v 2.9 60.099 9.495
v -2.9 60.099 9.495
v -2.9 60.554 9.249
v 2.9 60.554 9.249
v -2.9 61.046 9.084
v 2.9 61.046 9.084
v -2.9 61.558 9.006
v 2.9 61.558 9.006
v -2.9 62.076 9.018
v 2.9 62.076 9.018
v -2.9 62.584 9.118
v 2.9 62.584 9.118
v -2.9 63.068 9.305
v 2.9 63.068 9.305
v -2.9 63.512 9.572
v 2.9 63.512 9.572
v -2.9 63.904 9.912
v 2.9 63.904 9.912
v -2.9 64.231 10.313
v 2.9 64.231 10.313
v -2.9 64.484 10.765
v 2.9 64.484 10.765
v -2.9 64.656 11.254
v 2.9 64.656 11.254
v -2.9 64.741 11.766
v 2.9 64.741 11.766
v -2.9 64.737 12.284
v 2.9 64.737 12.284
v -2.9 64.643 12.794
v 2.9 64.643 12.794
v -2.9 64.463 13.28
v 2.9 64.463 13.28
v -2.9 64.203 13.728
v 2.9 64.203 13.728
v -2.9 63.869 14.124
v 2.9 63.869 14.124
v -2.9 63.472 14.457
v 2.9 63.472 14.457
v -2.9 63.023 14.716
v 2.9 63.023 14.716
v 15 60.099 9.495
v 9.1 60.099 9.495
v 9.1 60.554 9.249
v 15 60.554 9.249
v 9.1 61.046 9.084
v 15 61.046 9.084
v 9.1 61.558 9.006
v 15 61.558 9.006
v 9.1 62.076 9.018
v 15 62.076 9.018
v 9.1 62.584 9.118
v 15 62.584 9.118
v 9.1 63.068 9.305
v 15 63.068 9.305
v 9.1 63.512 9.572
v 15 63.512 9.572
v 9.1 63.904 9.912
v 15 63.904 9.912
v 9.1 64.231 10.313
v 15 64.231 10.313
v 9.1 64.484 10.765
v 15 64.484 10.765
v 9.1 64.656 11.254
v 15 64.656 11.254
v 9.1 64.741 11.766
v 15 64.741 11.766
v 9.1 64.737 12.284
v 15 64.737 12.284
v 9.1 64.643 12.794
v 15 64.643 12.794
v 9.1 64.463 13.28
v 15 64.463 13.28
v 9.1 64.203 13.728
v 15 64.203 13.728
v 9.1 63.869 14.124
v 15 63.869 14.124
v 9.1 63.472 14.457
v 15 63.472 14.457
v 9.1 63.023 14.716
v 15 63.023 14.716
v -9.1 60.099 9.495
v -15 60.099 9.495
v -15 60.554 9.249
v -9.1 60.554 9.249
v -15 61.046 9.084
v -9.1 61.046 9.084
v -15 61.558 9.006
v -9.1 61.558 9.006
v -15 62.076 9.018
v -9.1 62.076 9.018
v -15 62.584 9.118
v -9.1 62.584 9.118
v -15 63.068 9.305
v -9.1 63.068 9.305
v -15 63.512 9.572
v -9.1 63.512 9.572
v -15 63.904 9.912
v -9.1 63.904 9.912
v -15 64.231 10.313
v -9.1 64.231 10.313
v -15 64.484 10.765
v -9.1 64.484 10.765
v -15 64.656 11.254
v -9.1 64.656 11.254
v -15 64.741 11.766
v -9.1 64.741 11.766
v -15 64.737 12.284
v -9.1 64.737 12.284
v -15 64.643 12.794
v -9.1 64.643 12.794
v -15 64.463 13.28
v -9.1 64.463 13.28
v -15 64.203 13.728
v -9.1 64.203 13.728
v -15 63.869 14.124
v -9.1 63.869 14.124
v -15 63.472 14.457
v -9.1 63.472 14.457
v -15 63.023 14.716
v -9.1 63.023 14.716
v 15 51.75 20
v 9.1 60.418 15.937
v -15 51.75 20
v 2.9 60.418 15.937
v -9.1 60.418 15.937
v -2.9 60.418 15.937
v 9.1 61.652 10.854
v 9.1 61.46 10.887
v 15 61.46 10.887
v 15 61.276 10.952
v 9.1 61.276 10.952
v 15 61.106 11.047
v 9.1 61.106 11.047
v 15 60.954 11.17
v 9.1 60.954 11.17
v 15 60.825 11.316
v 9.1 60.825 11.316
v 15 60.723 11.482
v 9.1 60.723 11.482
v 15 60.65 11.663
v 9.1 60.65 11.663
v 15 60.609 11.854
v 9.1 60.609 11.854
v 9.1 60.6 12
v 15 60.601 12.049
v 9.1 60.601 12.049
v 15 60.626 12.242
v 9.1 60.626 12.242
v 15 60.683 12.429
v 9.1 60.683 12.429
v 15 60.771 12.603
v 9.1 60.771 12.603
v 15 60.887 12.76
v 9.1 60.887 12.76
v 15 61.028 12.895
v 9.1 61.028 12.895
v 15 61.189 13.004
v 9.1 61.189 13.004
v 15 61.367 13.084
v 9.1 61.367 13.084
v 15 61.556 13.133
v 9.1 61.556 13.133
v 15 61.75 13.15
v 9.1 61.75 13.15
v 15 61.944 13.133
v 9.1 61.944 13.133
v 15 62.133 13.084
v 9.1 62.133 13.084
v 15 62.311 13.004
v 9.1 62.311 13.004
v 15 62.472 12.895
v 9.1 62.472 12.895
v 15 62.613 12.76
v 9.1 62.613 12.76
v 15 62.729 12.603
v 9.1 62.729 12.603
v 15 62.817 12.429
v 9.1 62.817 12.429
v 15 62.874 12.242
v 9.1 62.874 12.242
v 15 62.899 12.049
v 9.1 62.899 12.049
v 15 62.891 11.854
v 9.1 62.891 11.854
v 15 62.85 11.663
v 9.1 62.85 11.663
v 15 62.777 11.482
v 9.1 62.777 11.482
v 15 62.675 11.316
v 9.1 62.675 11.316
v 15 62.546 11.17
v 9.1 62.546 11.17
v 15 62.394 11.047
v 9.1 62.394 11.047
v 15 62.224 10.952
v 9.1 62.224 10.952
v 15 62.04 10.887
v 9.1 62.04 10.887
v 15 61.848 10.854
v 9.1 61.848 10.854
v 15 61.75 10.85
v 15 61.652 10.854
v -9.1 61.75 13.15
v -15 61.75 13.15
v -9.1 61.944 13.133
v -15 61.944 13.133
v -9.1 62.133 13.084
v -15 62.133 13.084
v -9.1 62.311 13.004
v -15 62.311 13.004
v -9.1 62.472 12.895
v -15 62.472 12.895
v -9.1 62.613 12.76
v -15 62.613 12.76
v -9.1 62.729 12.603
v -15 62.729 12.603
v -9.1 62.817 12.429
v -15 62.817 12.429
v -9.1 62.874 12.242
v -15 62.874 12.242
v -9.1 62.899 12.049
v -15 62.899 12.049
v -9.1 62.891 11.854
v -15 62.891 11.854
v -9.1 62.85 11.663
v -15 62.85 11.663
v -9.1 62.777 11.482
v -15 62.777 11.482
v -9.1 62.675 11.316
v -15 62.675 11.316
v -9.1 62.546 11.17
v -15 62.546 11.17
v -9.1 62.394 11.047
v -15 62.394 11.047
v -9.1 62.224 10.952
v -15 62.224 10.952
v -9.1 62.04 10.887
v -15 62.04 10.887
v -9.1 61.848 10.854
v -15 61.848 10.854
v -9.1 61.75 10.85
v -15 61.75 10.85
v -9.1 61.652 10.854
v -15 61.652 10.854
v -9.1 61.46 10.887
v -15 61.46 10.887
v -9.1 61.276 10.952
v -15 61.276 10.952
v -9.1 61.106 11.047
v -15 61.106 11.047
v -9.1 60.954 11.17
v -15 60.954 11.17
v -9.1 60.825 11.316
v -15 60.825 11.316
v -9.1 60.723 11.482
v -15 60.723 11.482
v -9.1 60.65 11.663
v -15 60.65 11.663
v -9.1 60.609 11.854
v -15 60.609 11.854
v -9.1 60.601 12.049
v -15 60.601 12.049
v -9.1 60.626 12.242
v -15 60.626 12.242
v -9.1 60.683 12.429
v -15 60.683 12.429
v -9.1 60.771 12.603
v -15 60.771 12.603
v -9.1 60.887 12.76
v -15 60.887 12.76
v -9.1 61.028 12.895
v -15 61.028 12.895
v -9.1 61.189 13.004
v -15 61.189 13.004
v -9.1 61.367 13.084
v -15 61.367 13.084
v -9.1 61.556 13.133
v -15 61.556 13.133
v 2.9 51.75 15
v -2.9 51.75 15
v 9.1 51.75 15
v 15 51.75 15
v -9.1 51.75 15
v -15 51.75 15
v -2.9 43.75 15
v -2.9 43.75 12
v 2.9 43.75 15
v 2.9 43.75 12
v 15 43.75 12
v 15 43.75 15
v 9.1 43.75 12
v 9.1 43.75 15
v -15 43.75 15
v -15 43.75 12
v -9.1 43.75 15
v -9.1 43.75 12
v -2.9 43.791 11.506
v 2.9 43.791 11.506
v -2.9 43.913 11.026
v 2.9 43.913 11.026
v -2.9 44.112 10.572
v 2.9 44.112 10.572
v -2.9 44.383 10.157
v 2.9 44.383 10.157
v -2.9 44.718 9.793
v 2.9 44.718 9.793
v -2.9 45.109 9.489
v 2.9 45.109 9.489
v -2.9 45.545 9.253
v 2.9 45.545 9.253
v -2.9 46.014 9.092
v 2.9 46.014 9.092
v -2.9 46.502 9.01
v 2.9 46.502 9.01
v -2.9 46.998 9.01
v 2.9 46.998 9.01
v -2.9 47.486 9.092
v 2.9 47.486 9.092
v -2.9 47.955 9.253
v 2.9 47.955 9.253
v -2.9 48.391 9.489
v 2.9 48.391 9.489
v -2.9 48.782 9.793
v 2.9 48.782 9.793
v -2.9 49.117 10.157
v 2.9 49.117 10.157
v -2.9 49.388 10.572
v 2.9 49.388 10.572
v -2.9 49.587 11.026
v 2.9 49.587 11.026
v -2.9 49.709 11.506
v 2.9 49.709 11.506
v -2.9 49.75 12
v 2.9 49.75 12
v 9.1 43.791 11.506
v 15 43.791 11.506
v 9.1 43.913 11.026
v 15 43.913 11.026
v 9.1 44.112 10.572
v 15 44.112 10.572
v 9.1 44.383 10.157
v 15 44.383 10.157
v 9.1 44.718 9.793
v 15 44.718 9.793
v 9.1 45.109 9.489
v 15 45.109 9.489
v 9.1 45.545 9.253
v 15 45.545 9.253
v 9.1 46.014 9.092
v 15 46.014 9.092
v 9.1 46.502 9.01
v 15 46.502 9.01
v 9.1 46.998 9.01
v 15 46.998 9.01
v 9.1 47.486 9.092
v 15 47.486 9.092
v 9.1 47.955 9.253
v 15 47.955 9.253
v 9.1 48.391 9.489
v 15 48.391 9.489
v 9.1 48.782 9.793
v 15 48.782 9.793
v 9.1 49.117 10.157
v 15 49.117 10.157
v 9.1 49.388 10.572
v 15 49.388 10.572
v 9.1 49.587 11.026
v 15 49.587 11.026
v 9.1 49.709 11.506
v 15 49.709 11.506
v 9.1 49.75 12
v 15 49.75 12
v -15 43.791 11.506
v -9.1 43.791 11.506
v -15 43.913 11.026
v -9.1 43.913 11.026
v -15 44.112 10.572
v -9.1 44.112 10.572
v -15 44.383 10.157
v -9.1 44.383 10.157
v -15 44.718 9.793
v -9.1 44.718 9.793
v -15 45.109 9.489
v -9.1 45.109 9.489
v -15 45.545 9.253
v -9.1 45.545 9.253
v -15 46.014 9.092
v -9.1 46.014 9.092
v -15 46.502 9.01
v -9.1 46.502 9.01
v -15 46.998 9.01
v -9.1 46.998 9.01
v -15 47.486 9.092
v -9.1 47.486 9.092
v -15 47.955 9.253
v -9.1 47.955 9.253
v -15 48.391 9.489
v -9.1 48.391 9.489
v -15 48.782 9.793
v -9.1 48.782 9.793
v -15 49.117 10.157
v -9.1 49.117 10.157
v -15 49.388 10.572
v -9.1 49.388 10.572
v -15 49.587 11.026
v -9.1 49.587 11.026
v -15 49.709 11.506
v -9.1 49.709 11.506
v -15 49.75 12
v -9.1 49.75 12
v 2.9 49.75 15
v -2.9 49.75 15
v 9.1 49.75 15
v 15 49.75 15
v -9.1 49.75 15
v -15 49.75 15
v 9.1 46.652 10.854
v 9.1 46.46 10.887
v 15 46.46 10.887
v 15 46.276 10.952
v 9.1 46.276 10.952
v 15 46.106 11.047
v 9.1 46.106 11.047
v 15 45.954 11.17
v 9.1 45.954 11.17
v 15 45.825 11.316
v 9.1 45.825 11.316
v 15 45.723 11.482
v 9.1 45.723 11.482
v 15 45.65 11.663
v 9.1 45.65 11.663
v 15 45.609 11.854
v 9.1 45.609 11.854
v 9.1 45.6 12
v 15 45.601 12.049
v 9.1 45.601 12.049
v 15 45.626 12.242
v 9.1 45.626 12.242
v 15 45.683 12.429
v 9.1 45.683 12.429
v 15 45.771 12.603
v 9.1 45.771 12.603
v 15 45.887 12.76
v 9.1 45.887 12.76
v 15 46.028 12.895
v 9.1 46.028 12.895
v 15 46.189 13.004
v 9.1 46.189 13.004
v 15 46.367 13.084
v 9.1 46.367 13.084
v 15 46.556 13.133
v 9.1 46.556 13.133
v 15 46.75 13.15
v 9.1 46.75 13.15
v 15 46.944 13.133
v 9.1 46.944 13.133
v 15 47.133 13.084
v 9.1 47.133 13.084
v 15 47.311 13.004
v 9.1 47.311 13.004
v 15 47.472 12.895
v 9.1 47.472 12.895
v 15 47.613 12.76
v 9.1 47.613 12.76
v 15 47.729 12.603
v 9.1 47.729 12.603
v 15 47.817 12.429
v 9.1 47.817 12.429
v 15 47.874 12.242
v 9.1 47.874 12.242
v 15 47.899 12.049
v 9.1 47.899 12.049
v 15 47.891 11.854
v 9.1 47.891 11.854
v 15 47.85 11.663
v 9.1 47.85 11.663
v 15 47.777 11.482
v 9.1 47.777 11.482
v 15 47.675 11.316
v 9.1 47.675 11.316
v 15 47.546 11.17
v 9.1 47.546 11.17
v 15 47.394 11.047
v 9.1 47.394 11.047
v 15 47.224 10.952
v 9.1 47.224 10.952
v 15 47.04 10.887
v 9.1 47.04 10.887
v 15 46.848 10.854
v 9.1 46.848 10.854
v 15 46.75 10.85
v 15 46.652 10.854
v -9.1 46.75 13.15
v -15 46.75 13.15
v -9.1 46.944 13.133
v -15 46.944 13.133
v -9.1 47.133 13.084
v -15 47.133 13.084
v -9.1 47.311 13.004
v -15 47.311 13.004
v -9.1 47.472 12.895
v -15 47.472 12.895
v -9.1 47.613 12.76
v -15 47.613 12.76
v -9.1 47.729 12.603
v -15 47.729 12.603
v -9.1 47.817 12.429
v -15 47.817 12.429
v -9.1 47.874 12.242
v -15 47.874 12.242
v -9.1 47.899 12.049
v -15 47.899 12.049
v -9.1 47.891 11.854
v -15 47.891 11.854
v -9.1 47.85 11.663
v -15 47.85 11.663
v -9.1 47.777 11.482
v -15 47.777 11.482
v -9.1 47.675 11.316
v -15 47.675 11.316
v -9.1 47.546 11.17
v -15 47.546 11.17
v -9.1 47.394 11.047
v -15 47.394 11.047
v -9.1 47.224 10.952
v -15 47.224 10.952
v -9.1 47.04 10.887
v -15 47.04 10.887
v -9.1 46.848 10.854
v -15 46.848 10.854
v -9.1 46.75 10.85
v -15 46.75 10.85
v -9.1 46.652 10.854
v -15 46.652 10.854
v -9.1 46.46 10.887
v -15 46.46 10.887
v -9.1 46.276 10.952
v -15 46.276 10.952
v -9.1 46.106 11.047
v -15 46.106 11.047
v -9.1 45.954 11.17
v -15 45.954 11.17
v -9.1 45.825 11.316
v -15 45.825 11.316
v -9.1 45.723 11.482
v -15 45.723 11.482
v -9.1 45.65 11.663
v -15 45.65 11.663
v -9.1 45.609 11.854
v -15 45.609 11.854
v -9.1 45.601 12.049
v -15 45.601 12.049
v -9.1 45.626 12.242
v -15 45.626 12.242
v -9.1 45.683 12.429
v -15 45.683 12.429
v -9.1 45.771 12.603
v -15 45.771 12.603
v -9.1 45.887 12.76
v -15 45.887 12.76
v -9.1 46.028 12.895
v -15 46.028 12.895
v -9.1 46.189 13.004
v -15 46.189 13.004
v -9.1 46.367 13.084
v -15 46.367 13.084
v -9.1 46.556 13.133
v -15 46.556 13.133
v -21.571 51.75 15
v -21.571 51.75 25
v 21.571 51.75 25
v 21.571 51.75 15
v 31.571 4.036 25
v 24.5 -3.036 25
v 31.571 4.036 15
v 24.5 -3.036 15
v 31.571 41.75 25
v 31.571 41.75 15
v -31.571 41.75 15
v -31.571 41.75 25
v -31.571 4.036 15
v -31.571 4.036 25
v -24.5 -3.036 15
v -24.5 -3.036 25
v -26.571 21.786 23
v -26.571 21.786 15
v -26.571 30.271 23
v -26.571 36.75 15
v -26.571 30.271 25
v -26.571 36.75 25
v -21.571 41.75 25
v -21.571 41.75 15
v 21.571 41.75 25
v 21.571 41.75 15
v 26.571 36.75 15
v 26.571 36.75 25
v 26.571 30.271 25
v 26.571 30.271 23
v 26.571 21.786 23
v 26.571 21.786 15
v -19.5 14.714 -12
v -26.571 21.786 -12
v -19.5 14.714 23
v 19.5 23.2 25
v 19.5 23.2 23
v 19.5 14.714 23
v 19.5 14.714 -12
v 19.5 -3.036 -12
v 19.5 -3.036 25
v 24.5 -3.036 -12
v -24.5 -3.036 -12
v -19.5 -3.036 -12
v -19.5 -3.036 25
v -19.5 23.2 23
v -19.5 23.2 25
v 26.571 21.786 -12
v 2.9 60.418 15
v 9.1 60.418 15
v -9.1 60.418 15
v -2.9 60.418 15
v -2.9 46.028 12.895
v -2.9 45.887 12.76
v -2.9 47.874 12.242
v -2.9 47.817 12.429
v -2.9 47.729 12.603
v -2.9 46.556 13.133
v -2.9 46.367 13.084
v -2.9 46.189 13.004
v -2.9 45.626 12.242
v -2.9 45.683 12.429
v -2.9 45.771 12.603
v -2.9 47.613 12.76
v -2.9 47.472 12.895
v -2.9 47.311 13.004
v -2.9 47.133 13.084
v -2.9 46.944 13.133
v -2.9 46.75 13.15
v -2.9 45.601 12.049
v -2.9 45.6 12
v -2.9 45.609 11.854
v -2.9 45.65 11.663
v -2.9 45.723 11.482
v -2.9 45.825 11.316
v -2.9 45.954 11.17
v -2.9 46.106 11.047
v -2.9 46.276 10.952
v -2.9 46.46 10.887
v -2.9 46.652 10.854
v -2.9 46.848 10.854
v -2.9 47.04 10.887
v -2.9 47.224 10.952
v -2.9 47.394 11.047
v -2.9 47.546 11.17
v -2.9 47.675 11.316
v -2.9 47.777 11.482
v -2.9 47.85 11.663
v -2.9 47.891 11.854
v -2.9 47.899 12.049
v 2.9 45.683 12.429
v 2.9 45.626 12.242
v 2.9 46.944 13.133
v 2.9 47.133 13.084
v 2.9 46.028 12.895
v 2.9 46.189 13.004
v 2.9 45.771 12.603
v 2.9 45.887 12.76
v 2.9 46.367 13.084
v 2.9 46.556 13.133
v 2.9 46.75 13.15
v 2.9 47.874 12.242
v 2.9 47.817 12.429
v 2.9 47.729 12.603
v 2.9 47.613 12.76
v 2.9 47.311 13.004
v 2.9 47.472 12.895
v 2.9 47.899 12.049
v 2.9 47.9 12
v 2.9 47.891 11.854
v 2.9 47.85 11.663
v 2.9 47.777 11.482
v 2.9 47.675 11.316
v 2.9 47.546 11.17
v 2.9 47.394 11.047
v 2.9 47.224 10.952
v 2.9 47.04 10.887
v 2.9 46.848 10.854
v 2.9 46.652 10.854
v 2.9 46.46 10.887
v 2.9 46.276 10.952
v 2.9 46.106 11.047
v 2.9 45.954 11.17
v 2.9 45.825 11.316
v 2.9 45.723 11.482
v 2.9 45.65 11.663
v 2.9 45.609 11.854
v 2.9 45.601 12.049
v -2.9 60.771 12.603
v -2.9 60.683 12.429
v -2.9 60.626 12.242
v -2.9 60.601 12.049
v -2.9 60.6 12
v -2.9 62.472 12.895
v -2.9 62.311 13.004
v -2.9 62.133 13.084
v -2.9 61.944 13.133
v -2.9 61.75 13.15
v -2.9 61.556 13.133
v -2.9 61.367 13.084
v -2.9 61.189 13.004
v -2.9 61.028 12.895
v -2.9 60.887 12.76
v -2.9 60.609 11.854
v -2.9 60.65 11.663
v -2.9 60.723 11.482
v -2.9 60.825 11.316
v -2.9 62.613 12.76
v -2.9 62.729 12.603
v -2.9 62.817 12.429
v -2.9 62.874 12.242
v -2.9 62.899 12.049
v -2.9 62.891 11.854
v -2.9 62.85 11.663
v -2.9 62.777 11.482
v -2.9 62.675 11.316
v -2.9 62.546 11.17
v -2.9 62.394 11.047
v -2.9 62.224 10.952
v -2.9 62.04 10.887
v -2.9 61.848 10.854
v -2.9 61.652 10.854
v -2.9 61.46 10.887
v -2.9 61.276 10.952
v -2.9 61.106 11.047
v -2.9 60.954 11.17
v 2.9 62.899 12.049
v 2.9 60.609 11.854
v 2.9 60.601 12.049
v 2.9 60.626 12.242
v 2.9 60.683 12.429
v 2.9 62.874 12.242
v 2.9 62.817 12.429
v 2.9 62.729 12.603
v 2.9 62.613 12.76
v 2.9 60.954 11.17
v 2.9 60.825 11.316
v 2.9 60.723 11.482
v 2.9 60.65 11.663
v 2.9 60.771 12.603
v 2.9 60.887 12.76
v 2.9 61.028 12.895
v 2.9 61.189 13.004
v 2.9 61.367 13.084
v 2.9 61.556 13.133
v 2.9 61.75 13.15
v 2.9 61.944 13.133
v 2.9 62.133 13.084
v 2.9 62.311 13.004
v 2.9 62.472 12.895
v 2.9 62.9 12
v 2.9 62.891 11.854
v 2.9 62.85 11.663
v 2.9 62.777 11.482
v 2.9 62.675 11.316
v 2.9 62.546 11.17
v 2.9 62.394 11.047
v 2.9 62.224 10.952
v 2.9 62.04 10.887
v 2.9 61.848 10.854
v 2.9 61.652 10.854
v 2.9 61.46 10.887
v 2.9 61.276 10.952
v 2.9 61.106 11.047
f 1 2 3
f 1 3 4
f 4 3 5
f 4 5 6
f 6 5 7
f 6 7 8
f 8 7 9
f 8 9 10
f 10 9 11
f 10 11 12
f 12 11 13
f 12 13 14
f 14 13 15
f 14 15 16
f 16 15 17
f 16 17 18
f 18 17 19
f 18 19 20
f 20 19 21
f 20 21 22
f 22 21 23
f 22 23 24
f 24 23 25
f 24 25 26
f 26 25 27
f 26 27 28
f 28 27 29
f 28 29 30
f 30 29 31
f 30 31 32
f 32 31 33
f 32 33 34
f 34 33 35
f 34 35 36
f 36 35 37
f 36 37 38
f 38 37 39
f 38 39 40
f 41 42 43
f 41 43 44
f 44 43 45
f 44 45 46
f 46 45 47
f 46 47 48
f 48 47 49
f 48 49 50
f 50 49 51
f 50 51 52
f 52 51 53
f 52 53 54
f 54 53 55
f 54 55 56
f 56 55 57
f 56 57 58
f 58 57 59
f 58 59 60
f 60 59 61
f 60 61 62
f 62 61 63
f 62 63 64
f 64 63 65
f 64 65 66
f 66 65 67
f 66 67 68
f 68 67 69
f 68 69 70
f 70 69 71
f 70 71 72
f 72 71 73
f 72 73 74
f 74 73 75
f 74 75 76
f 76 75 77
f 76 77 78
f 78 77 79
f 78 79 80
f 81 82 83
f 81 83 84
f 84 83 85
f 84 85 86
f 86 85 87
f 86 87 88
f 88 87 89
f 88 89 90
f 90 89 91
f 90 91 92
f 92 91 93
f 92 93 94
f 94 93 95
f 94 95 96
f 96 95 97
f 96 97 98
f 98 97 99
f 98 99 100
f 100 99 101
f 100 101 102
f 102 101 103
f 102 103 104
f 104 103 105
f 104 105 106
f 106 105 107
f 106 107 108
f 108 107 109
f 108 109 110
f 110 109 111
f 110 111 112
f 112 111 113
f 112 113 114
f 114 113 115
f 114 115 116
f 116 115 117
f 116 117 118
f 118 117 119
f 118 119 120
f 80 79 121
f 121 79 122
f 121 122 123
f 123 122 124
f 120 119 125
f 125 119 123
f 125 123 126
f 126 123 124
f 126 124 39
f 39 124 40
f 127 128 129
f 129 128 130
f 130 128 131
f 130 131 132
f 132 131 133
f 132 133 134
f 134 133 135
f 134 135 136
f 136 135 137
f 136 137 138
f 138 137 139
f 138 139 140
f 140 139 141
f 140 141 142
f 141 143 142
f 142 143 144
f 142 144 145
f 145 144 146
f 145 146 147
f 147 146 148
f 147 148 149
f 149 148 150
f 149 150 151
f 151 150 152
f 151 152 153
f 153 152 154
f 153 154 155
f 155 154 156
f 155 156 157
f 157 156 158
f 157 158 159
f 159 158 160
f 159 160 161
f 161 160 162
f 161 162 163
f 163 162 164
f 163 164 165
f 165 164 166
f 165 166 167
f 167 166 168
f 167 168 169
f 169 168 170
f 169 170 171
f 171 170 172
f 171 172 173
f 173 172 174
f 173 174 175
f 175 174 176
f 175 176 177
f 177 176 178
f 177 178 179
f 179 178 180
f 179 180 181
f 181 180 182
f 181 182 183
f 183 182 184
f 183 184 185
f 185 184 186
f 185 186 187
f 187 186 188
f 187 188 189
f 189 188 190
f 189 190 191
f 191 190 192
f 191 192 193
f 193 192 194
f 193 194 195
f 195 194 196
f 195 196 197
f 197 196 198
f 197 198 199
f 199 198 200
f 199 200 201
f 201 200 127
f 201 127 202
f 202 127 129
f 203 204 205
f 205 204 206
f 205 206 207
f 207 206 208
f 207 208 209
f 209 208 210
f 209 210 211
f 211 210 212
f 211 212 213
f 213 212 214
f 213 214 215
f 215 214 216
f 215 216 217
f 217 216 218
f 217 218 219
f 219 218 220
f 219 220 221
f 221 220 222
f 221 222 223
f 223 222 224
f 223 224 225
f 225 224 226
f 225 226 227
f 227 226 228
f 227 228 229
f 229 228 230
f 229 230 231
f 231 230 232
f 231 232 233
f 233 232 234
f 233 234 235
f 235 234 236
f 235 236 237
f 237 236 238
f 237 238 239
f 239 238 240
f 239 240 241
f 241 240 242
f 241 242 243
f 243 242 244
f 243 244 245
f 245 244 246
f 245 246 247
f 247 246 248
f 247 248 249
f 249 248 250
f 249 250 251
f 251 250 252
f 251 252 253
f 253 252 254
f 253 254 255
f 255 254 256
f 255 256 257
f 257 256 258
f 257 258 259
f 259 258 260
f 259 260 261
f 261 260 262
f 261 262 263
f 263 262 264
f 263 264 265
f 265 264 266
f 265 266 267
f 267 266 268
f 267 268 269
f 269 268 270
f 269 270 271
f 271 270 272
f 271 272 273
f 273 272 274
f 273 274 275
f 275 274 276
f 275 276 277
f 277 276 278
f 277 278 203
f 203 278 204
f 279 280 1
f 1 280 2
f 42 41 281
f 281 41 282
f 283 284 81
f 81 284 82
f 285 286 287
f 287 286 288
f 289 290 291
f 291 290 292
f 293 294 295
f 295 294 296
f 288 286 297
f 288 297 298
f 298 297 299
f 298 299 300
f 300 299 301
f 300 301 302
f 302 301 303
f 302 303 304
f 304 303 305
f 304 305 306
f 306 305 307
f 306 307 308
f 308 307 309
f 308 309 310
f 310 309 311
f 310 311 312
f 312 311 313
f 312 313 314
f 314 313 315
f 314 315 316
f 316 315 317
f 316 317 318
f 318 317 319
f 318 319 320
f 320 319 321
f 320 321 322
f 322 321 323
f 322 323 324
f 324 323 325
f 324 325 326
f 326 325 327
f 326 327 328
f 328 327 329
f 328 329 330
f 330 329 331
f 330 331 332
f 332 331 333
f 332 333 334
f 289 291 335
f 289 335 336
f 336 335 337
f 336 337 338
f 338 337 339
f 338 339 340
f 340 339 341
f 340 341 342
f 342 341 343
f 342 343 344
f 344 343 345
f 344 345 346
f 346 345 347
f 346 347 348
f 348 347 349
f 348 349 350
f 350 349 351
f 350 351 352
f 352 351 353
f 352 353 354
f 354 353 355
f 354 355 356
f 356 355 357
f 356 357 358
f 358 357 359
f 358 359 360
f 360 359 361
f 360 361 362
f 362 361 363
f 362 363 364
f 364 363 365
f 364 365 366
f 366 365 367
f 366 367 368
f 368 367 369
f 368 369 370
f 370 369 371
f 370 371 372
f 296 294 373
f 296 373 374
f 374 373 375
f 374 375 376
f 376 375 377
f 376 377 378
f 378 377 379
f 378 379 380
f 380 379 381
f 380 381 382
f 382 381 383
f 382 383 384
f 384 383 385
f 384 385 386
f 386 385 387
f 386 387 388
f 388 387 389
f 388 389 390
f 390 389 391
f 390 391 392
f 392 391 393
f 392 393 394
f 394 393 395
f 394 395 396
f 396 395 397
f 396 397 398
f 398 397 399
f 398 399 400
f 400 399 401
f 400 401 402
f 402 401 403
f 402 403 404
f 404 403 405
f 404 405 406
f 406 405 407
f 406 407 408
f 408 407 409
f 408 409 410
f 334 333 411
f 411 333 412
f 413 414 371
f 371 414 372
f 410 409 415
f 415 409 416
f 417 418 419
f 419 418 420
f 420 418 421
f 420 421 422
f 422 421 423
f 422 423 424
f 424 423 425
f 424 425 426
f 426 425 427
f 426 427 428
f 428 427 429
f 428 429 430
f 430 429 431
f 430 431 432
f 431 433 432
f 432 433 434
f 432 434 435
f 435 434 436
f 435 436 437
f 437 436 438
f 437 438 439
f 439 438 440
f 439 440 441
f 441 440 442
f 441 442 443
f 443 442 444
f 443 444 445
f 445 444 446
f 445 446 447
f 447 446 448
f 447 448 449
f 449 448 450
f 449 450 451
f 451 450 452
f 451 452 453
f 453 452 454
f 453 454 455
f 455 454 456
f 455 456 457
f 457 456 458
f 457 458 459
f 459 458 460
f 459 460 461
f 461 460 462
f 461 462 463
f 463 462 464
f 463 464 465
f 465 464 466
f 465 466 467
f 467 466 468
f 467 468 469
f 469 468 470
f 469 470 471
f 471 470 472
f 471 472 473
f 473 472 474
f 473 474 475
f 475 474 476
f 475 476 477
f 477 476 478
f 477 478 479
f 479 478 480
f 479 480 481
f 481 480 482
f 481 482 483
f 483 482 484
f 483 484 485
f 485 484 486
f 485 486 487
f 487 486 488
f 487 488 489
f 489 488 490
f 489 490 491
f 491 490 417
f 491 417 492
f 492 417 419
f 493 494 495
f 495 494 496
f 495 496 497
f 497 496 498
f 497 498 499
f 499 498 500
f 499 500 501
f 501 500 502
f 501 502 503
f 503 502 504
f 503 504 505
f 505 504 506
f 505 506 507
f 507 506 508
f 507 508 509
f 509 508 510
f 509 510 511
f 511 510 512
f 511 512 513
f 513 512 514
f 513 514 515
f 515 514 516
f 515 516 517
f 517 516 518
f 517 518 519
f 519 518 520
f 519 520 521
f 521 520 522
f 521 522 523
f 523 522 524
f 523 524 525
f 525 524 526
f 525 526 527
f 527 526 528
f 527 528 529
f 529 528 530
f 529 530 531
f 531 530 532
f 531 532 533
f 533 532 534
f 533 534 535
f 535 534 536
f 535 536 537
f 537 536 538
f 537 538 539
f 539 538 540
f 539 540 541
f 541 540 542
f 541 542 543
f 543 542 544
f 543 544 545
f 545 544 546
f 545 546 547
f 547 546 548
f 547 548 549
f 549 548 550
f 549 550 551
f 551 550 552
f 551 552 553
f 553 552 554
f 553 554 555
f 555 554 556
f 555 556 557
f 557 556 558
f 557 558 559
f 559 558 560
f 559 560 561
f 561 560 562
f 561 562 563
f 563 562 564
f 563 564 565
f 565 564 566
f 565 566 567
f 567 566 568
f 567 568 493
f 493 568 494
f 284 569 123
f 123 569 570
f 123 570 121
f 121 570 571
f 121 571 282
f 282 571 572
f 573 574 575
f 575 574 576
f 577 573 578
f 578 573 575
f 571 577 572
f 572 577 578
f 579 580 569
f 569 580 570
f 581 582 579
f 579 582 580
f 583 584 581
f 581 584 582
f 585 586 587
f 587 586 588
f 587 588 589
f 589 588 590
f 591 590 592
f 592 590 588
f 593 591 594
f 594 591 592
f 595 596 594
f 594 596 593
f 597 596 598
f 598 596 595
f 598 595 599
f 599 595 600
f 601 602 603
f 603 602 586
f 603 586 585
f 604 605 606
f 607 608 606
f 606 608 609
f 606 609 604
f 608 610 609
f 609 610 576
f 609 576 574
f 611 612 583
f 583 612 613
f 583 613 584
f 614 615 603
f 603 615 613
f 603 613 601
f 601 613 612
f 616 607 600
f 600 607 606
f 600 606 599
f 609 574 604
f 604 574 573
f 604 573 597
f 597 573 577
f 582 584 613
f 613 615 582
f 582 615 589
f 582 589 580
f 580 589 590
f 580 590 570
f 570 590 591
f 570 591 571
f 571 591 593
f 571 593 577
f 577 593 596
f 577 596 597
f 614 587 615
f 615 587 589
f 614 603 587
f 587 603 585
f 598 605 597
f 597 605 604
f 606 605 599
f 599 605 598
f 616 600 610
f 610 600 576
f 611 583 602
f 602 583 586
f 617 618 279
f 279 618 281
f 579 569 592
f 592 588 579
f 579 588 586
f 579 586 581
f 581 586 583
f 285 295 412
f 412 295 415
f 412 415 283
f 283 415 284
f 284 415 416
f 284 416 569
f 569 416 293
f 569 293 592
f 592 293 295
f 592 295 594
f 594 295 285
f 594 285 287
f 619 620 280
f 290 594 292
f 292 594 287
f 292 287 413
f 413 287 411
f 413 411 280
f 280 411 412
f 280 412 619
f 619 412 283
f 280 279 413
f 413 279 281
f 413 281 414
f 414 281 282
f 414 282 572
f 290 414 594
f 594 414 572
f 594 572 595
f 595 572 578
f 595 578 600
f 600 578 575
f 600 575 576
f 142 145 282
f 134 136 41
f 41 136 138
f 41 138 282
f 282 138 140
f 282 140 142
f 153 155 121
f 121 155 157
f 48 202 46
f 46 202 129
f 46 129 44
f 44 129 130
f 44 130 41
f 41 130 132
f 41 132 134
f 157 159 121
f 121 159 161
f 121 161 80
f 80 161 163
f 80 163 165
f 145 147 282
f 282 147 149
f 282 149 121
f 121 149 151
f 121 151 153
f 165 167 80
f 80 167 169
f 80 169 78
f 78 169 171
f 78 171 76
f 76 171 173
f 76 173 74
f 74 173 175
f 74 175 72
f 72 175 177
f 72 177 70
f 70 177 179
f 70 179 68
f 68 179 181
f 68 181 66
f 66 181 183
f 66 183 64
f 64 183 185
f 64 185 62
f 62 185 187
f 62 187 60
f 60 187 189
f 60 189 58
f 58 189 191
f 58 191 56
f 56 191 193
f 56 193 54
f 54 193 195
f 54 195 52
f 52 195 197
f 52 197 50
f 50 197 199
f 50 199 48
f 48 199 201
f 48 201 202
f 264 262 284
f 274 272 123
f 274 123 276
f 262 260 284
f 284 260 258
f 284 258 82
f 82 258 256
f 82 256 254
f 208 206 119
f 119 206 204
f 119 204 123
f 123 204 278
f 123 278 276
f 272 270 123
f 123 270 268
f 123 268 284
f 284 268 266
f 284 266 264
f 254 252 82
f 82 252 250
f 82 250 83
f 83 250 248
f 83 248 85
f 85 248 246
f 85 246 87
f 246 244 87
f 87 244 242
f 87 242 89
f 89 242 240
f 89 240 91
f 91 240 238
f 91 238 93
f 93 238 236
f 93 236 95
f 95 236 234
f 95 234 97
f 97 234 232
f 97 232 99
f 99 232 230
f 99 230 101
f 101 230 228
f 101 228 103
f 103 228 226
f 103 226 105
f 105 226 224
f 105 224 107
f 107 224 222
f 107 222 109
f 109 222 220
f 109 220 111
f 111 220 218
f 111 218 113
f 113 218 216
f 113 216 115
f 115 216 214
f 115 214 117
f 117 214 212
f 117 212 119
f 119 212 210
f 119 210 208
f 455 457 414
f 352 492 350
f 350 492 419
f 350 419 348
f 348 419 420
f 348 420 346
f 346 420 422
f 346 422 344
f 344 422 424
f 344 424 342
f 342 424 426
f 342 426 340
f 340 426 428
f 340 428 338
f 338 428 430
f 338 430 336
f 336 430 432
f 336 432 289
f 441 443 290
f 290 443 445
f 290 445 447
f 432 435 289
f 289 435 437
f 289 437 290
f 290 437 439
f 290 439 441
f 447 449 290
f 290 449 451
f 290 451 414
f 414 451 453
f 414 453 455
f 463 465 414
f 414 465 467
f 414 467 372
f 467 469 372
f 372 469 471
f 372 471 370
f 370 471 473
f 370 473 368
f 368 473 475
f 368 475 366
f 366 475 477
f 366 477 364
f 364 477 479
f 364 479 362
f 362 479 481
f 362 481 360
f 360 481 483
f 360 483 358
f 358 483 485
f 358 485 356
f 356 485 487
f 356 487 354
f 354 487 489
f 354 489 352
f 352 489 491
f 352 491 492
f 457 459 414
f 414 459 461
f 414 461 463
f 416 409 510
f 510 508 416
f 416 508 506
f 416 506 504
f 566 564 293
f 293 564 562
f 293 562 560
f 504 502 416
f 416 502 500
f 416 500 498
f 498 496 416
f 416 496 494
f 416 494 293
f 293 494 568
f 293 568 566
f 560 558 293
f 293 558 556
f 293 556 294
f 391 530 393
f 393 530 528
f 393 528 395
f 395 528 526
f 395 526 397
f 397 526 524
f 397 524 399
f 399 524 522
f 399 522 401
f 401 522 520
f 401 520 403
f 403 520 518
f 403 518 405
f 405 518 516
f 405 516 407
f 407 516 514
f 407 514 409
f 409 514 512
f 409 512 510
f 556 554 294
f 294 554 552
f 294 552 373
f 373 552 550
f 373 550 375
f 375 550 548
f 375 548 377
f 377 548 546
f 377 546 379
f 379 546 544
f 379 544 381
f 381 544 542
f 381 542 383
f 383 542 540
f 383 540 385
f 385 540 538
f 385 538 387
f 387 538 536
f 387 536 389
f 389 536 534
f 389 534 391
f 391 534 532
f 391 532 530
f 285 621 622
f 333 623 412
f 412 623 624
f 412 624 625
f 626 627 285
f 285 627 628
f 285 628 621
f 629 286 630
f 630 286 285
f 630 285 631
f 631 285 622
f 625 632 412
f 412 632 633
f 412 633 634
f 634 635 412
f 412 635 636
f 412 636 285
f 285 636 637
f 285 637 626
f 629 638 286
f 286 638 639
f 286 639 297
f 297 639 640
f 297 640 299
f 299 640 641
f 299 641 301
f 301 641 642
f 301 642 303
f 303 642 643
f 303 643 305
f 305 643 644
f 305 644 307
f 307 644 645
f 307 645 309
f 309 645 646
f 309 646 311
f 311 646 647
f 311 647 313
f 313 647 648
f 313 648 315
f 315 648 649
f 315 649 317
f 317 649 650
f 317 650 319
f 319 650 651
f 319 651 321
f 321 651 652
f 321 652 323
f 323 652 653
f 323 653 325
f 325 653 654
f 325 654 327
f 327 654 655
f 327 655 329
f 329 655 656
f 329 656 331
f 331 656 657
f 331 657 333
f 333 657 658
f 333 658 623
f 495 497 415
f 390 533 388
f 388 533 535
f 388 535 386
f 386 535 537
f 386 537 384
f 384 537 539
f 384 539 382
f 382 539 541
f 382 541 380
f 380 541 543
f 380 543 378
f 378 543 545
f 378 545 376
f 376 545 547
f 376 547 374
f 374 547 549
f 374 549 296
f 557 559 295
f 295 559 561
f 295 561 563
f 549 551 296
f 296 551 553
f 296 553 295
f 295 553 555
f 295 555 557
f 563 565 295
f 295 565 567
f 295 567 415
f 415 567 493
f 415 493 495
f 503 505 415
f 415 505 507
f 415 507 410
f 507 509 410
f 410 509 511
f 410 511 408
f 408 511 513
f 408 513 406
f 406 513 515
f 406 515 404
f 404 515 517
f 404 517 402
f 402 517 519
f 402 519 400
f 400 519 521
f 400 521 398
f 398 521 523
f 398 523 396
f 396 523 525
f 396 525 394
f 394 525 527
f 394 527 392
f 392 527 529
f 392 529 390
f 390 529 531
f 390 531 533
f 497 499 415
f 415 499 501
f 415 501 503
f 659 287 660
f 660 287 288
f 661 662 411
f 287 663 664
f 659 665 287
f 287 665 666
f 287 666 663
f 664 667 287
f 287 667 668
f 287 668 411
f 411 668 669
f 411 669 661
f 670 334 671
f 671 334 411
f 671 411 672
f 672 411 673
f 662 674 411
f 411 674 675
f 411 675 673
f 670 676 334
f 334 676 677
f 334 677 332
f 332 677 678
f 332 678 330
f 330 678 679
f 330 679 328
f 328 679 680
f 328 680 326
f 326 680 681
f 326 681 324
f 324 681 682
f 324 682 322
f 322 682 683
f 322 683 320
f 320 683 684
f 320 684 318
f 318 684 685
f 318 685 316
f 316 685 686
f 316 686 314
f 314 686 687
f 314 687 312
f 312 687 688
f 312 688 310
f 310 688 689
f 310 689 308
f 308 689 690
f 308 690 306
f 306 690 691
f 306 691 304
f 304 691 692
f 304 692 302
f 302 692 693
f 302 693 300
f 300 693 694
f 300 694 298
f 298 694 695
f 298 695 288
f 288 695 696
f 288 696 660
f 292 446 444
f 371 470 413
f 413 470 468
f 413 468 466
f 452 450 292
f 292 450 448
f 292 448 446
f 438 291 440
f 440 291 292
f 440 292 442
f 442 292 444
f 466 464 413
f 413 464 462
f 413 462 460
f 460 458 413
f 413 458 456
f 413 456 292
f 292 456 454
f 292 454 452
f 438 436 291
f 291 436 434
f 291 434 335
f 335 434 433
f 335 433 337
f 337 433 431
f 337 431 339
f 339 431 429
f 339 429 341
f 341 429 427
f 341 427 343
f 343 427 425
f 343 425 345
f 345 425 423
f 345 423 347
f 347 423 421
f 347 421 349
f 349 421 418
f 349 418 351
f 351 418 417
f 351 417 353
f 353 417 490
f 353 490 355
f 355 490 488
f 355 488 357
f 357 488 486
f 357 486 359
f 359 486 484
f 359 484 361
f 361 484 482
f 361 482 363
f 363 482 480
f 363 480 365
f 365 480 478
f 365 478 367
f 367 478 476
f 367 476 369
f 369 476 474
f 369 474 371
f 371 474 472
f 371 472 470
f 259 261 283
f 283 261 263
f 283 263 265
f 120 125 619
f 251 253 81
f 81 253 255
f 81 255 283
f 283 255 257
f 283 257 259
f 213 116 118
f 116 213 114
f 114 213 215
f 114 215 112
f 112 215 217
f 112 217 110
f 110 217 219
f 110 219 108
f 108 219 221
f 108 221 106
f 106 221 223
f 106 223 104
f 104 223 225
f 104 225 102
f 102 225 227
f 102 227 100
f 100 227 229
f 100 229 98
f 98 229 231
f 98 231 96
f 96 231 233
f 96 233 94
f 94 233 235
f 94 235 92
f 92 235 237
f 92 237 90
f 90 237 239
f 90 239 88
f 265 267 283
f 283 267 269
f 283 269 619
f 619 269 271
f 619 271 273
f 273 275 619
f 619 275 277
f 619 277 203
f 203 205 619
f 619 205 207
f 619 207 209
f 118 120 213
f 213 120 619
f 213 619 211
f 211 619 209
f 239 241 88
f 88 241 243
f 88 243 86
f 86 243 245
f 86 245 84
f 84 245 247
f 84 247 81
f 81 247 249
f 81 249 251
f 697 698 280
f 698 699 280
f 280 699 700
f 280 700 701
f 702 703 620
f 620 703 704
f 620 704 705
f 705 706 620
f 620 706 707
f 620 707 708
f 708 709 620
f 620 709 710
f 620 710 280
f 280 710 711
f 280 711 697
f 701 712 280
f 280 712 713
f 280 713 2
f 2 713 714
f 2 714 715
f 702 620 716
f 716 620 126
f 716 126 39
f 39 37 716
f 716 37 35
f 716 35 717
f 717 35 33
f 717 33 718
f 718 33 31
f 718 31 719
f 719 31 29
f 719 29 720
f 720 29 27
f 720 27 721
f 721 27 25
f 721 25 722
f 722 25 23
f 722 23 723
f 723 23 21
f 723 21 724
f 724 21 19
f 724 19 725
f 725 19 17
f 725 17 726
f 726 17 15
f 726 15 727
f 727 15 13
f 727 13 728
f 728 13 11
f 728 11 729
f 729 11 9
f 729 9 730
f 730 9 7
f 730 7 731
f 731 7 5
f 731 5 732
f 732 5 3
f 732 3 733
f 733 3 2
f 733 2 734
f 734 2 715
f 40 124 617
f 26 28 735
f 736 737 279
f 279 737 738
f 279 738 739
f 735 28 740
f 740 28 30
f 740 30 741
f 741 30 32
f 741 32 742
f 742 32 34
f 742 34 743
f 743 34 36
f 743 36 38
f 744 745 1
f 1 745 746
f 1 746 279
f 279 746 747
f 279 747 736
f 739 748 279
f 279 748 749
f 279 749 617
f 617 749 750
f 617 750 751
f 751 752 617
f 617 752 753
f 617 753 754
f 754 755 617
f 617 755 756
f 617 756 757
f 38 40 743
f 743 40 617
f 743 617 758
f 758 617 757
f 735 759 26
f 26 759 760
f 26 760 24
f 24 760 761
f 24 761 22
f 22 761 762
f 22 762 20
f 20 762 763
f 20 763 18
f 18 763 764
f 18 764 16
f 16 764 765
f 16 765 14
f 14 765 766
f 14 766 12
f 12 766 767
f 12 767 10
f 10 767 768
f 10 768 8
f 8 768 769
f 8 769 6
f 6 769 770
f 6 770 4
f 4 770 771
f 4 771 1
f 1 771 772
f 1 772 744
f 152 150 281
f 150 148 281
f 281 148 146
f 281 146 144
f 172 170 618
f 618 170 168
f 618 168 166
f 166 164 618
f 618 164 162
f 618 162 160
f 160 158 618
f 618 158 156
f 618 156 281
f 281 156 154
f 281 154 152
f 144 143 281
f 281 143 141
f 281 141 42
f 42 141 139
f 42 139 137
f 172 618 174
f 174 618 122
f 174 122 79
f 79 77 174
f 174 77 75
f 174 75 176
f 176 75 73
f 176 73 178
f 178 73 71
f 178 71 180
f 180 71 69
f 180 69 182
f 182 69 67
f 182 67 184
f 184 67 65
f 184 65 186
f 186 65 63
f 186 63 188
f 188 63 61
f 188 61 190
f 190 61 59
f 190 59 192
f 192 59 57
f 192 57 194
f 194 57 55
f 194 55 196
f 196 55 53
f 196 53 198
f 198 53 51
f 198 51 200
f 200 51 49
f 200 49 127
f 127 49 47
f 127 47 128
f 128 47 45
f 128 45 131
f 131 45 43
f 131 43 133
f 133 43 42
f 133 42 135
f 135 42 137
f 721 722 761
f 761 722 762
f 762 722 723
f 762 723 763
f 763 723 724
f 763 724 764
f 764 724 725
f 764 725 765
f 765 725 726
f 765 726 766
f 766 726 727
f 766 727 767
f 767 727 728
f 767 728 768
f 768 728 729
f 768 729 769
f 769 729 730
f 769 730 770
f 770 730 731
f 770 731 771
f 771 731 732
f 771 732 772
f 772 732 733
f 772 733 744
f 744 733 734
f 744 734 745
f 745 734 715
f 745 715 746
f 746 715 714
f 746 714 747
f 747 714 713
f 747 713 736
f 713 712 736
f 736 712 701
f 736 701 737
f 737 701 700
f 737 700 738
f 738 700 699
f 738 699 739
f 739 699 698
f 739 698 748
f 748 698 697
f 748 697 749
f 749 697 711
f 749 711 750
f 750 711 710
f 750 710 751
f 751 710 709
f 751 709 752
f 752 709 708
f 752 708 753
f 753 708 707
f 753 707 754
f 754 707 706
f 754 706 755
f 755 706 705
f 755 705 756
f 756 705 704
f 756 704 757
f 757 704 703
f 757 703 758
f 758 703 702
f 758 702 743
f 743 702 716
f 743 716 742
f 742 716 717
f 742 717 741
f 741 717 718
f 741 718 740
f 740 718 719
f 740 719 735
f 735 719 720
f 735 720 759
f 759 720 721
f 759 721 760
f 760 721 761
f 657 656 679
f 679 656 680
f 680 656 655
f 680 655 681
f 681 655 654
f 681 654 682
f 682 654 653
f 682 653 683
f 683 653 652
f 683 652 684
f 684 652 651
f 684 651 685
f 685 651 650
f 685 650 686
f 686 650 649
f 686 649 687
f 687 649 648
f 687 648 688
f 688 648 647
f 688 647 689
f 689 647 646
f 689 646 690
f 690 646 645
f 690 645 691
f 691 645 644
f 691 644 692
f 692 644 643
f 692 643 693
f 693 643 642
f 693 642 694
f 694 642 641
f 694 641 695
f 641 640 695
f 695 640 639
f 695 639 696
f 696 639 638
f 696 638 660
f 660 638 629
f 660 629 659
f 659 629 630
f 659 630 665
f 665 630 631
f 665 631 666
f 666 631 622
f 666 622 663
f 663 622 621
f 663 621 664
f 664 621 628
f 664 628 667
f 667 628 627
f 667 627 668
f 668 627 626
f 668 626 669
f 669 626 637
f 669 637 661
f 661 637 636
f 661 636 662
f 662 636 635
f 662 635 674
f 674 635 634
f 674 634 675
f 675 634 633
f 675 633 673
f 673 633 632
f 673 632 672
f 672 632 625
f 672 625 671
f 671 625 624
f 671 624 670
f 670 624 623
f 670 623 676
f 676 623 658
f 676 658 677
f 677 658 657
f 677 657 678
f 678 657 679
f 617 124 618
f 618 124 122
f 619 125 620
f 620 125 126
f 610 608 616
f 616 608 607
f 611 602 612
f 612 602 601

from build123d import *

# Parameters (mm, degrees)
EXTRUDE_1_DEPTH     = 25
EXTRUDE_2_DEPTH     = 2
CUT_EXTRUDE_1_DEPTH = 15
SKETCH_4_R          = 1.15
EXTRUDE_3_DEPTH     = 15
SKETCH_5_W          = 6.2
SKETCH_5_H          = 22
CUT_EXTRUDE_2_DEPTH = 74.581891949
SKETCH_6_W          = 6.2
SKETCH_6_H          = 2
CUT_EXTRUDE_3_DEPTH = 74.581891949
EXTRUDE_4_DEPTH     = 12
EXTRUDE_5_DEPTH     = 12


with BuildPart() as part:
    # 草图1 → 凸台-拉伸1 (new body)
    with BuildSketch(Plane.XY):
        Polygon((19.5, 14.714466094), (19.5, -3.035533906), (24.5, -3.035533906), (31.571067812, 4.035533906), (31.571067812, 41.75), (21.571067812, 51.75), (-21.571067812, 51.75), (-31.571067812, 41.75), (-31.571067812, 4.035533906), (-24.5, -3.035533906), (-19.5, -3.035533906), (-19.5, 14.714466094), (-26.571067812, 21.785533906), (-26.571067812, 36.75), (-21.571067812, 41.75), (21.571067812, 41.75), (26.571067812, 36.75), (26.571067812, 21.785533906), align=None)
    extrude(amount=EXTRUDE_1_DEPTH)

    # 草图2 → 凸台-拉伸2 (add)
    with BuildSketch(Plane.XY.offset(25)):
        Polygon((-26.571067812, 30.27081528), (-19.5, 23.199747468), (-19.5, 14.714466094), (-26.571067812, 21.785533906), align=None)
        Polygon((26.571067812, 30.27081528), (19.5, 23.199747468), (19.5, 14.714466094), (26.571067812, 21.785533906), align=None)
    extrude(amount=-EXTRUDE_2_DEPTH)

    # 草图3 → 切除-拉伸1 (cut)
    with BuildSketch(Plane(origin=(0, 0, 0), x_dir=(-1, 0, 0), z_dir=(0, 0, -1))):
        Polygon((26.571067812, 21.785533906), (24.5, -3.035533906), (31.571067812, 4.035533906), (31.571067812, 41.75), (21.571067812, 51.75), (-21.571067812, 51.75), (-31.571067812, 41.75), (-31.571067812, 4.035533906), (-24.5, -3.035533906), (-26.571067812, 21.785533906), (-26.571067812, 36.75), (-21.571067812, 41.75), (21.571067812, 41.75), (26.571067812, 36.75), align=None)
    extrude(amount=-CUT_EXTRUDE_1_DEPTH, mode=Mode.SUBTRACT)

    # 草图4 → 凸台-拉伸3 (add, symmetric)
    # profile 1 of 2: a face of its own
    with BuildSketch(Plane(origin=(0, 0, 0), x_dir=(0, 0, -1), z_dir=(1, 0, 0))):
        with BuildLine():
            Line((-12, 49.75), (-15, 49.75))
            ThreePointArc((-15, 49.75), (-18, 46.75), (-15, 43.75))
            Line((-15, 43.75), (-12, 43.75))
            ThreePointArc((-12, 43.75), (-9, 46.75), (-12, 49.75))
        make_face()
        with Locations((-12, 46.75)):
            Circle(SKETCH_4_R, mode=Mode.SUBTRACT)
    # profile 2 of 2: a face of its own
    with BuildSketch(Plane(origin=(0, 0, 0), x_dir=(0, 0, -1), z_dir=(1, 0, 0))):
        with BuildLine():
            Line((-14.716445048, 63.023156039), (-20, 51.75))
            Line((-20, 51.75), (-15, 51.75))
            Line((-15, 51.75), (-9.495412844, 60.098623853))
            ThreePointArc((-9.495412844, 60.098623853), (-10.533902095, 64.36735686), (-14.716445048, 63.023156039))
        make_face()
        with Locations((-12, 61.75)):
            Circle(SKETCH_4_R, mode=Mode.SUBTRACT)
    extrude(amount=EXTRUDE_3_DEPTH, both=True)

    # 草图5 → 切除-拉伸2 (cut, through all)
    with BuildSketch(Plane(origin=(0, 0, 15), x_dir=(-1, 0, 0), z_dir=(0, 0, -1))):
        with Locations((-6, 54.75)):
            Rectangle(SKETCH_5_W, SKETCH_5_H)
        with Locations((6, 54.75)):
            Rectangle(SKETCH_5_W, SKETCH_5_H)
    extrude(amount=CUT_EXTRUDE_2_DEPTH, mode=Mode.SUBTRACT)

    # 草图6 → 切除-拉伸3 (cut, through all)
    with BuildSketch(Plane(origin=(0, 0, 15), x_dir=(-1, 0, 0), z_dir=(0, 0, -1))):
        with Locations((-6, 61.418154436)):
            Rectangle(SKETCH_6_W, SKETCH_6_H)
        with Locations((6, 61.418154436)):
            Rectangle(SKETCH_6_W, SKETCH_6_H)
    extrude(amount=-CUT_EXTRUDE_3_DEPTH, mode=Mode.SUBTRACT)

    # 草图7 → 凸台-拉伸4 (add)
    with BuildSketch(Plane(origin=(0, 0, 0), x_dir=(-1, 0, 0), z_dir=(0, 0, -1))):
        Polygon((-26.571067812, 21.785533906), (-24.5, -3.035533906), (-19.5, -3.035533906), (-19.5, 14.714466094), align=None)
    extrude(amount=EXTRUDE_4_DEPTH)

    # 草图8 → 凸台-拉伸5 (add)
    with BuildSketch(Plane(origin=(0, 0, 0), x_dir=(-1, 0, 0), z_dir=(0, 0, -1))):
        Polygon((19.5, -3.035533906), (24.5, -3.035533906), (26.571067812, 21.785533906), (19.5, 14.714466094), align=None)
    extrude(amount=EXTRUDE_5_DEPTH)


solid = part.part
